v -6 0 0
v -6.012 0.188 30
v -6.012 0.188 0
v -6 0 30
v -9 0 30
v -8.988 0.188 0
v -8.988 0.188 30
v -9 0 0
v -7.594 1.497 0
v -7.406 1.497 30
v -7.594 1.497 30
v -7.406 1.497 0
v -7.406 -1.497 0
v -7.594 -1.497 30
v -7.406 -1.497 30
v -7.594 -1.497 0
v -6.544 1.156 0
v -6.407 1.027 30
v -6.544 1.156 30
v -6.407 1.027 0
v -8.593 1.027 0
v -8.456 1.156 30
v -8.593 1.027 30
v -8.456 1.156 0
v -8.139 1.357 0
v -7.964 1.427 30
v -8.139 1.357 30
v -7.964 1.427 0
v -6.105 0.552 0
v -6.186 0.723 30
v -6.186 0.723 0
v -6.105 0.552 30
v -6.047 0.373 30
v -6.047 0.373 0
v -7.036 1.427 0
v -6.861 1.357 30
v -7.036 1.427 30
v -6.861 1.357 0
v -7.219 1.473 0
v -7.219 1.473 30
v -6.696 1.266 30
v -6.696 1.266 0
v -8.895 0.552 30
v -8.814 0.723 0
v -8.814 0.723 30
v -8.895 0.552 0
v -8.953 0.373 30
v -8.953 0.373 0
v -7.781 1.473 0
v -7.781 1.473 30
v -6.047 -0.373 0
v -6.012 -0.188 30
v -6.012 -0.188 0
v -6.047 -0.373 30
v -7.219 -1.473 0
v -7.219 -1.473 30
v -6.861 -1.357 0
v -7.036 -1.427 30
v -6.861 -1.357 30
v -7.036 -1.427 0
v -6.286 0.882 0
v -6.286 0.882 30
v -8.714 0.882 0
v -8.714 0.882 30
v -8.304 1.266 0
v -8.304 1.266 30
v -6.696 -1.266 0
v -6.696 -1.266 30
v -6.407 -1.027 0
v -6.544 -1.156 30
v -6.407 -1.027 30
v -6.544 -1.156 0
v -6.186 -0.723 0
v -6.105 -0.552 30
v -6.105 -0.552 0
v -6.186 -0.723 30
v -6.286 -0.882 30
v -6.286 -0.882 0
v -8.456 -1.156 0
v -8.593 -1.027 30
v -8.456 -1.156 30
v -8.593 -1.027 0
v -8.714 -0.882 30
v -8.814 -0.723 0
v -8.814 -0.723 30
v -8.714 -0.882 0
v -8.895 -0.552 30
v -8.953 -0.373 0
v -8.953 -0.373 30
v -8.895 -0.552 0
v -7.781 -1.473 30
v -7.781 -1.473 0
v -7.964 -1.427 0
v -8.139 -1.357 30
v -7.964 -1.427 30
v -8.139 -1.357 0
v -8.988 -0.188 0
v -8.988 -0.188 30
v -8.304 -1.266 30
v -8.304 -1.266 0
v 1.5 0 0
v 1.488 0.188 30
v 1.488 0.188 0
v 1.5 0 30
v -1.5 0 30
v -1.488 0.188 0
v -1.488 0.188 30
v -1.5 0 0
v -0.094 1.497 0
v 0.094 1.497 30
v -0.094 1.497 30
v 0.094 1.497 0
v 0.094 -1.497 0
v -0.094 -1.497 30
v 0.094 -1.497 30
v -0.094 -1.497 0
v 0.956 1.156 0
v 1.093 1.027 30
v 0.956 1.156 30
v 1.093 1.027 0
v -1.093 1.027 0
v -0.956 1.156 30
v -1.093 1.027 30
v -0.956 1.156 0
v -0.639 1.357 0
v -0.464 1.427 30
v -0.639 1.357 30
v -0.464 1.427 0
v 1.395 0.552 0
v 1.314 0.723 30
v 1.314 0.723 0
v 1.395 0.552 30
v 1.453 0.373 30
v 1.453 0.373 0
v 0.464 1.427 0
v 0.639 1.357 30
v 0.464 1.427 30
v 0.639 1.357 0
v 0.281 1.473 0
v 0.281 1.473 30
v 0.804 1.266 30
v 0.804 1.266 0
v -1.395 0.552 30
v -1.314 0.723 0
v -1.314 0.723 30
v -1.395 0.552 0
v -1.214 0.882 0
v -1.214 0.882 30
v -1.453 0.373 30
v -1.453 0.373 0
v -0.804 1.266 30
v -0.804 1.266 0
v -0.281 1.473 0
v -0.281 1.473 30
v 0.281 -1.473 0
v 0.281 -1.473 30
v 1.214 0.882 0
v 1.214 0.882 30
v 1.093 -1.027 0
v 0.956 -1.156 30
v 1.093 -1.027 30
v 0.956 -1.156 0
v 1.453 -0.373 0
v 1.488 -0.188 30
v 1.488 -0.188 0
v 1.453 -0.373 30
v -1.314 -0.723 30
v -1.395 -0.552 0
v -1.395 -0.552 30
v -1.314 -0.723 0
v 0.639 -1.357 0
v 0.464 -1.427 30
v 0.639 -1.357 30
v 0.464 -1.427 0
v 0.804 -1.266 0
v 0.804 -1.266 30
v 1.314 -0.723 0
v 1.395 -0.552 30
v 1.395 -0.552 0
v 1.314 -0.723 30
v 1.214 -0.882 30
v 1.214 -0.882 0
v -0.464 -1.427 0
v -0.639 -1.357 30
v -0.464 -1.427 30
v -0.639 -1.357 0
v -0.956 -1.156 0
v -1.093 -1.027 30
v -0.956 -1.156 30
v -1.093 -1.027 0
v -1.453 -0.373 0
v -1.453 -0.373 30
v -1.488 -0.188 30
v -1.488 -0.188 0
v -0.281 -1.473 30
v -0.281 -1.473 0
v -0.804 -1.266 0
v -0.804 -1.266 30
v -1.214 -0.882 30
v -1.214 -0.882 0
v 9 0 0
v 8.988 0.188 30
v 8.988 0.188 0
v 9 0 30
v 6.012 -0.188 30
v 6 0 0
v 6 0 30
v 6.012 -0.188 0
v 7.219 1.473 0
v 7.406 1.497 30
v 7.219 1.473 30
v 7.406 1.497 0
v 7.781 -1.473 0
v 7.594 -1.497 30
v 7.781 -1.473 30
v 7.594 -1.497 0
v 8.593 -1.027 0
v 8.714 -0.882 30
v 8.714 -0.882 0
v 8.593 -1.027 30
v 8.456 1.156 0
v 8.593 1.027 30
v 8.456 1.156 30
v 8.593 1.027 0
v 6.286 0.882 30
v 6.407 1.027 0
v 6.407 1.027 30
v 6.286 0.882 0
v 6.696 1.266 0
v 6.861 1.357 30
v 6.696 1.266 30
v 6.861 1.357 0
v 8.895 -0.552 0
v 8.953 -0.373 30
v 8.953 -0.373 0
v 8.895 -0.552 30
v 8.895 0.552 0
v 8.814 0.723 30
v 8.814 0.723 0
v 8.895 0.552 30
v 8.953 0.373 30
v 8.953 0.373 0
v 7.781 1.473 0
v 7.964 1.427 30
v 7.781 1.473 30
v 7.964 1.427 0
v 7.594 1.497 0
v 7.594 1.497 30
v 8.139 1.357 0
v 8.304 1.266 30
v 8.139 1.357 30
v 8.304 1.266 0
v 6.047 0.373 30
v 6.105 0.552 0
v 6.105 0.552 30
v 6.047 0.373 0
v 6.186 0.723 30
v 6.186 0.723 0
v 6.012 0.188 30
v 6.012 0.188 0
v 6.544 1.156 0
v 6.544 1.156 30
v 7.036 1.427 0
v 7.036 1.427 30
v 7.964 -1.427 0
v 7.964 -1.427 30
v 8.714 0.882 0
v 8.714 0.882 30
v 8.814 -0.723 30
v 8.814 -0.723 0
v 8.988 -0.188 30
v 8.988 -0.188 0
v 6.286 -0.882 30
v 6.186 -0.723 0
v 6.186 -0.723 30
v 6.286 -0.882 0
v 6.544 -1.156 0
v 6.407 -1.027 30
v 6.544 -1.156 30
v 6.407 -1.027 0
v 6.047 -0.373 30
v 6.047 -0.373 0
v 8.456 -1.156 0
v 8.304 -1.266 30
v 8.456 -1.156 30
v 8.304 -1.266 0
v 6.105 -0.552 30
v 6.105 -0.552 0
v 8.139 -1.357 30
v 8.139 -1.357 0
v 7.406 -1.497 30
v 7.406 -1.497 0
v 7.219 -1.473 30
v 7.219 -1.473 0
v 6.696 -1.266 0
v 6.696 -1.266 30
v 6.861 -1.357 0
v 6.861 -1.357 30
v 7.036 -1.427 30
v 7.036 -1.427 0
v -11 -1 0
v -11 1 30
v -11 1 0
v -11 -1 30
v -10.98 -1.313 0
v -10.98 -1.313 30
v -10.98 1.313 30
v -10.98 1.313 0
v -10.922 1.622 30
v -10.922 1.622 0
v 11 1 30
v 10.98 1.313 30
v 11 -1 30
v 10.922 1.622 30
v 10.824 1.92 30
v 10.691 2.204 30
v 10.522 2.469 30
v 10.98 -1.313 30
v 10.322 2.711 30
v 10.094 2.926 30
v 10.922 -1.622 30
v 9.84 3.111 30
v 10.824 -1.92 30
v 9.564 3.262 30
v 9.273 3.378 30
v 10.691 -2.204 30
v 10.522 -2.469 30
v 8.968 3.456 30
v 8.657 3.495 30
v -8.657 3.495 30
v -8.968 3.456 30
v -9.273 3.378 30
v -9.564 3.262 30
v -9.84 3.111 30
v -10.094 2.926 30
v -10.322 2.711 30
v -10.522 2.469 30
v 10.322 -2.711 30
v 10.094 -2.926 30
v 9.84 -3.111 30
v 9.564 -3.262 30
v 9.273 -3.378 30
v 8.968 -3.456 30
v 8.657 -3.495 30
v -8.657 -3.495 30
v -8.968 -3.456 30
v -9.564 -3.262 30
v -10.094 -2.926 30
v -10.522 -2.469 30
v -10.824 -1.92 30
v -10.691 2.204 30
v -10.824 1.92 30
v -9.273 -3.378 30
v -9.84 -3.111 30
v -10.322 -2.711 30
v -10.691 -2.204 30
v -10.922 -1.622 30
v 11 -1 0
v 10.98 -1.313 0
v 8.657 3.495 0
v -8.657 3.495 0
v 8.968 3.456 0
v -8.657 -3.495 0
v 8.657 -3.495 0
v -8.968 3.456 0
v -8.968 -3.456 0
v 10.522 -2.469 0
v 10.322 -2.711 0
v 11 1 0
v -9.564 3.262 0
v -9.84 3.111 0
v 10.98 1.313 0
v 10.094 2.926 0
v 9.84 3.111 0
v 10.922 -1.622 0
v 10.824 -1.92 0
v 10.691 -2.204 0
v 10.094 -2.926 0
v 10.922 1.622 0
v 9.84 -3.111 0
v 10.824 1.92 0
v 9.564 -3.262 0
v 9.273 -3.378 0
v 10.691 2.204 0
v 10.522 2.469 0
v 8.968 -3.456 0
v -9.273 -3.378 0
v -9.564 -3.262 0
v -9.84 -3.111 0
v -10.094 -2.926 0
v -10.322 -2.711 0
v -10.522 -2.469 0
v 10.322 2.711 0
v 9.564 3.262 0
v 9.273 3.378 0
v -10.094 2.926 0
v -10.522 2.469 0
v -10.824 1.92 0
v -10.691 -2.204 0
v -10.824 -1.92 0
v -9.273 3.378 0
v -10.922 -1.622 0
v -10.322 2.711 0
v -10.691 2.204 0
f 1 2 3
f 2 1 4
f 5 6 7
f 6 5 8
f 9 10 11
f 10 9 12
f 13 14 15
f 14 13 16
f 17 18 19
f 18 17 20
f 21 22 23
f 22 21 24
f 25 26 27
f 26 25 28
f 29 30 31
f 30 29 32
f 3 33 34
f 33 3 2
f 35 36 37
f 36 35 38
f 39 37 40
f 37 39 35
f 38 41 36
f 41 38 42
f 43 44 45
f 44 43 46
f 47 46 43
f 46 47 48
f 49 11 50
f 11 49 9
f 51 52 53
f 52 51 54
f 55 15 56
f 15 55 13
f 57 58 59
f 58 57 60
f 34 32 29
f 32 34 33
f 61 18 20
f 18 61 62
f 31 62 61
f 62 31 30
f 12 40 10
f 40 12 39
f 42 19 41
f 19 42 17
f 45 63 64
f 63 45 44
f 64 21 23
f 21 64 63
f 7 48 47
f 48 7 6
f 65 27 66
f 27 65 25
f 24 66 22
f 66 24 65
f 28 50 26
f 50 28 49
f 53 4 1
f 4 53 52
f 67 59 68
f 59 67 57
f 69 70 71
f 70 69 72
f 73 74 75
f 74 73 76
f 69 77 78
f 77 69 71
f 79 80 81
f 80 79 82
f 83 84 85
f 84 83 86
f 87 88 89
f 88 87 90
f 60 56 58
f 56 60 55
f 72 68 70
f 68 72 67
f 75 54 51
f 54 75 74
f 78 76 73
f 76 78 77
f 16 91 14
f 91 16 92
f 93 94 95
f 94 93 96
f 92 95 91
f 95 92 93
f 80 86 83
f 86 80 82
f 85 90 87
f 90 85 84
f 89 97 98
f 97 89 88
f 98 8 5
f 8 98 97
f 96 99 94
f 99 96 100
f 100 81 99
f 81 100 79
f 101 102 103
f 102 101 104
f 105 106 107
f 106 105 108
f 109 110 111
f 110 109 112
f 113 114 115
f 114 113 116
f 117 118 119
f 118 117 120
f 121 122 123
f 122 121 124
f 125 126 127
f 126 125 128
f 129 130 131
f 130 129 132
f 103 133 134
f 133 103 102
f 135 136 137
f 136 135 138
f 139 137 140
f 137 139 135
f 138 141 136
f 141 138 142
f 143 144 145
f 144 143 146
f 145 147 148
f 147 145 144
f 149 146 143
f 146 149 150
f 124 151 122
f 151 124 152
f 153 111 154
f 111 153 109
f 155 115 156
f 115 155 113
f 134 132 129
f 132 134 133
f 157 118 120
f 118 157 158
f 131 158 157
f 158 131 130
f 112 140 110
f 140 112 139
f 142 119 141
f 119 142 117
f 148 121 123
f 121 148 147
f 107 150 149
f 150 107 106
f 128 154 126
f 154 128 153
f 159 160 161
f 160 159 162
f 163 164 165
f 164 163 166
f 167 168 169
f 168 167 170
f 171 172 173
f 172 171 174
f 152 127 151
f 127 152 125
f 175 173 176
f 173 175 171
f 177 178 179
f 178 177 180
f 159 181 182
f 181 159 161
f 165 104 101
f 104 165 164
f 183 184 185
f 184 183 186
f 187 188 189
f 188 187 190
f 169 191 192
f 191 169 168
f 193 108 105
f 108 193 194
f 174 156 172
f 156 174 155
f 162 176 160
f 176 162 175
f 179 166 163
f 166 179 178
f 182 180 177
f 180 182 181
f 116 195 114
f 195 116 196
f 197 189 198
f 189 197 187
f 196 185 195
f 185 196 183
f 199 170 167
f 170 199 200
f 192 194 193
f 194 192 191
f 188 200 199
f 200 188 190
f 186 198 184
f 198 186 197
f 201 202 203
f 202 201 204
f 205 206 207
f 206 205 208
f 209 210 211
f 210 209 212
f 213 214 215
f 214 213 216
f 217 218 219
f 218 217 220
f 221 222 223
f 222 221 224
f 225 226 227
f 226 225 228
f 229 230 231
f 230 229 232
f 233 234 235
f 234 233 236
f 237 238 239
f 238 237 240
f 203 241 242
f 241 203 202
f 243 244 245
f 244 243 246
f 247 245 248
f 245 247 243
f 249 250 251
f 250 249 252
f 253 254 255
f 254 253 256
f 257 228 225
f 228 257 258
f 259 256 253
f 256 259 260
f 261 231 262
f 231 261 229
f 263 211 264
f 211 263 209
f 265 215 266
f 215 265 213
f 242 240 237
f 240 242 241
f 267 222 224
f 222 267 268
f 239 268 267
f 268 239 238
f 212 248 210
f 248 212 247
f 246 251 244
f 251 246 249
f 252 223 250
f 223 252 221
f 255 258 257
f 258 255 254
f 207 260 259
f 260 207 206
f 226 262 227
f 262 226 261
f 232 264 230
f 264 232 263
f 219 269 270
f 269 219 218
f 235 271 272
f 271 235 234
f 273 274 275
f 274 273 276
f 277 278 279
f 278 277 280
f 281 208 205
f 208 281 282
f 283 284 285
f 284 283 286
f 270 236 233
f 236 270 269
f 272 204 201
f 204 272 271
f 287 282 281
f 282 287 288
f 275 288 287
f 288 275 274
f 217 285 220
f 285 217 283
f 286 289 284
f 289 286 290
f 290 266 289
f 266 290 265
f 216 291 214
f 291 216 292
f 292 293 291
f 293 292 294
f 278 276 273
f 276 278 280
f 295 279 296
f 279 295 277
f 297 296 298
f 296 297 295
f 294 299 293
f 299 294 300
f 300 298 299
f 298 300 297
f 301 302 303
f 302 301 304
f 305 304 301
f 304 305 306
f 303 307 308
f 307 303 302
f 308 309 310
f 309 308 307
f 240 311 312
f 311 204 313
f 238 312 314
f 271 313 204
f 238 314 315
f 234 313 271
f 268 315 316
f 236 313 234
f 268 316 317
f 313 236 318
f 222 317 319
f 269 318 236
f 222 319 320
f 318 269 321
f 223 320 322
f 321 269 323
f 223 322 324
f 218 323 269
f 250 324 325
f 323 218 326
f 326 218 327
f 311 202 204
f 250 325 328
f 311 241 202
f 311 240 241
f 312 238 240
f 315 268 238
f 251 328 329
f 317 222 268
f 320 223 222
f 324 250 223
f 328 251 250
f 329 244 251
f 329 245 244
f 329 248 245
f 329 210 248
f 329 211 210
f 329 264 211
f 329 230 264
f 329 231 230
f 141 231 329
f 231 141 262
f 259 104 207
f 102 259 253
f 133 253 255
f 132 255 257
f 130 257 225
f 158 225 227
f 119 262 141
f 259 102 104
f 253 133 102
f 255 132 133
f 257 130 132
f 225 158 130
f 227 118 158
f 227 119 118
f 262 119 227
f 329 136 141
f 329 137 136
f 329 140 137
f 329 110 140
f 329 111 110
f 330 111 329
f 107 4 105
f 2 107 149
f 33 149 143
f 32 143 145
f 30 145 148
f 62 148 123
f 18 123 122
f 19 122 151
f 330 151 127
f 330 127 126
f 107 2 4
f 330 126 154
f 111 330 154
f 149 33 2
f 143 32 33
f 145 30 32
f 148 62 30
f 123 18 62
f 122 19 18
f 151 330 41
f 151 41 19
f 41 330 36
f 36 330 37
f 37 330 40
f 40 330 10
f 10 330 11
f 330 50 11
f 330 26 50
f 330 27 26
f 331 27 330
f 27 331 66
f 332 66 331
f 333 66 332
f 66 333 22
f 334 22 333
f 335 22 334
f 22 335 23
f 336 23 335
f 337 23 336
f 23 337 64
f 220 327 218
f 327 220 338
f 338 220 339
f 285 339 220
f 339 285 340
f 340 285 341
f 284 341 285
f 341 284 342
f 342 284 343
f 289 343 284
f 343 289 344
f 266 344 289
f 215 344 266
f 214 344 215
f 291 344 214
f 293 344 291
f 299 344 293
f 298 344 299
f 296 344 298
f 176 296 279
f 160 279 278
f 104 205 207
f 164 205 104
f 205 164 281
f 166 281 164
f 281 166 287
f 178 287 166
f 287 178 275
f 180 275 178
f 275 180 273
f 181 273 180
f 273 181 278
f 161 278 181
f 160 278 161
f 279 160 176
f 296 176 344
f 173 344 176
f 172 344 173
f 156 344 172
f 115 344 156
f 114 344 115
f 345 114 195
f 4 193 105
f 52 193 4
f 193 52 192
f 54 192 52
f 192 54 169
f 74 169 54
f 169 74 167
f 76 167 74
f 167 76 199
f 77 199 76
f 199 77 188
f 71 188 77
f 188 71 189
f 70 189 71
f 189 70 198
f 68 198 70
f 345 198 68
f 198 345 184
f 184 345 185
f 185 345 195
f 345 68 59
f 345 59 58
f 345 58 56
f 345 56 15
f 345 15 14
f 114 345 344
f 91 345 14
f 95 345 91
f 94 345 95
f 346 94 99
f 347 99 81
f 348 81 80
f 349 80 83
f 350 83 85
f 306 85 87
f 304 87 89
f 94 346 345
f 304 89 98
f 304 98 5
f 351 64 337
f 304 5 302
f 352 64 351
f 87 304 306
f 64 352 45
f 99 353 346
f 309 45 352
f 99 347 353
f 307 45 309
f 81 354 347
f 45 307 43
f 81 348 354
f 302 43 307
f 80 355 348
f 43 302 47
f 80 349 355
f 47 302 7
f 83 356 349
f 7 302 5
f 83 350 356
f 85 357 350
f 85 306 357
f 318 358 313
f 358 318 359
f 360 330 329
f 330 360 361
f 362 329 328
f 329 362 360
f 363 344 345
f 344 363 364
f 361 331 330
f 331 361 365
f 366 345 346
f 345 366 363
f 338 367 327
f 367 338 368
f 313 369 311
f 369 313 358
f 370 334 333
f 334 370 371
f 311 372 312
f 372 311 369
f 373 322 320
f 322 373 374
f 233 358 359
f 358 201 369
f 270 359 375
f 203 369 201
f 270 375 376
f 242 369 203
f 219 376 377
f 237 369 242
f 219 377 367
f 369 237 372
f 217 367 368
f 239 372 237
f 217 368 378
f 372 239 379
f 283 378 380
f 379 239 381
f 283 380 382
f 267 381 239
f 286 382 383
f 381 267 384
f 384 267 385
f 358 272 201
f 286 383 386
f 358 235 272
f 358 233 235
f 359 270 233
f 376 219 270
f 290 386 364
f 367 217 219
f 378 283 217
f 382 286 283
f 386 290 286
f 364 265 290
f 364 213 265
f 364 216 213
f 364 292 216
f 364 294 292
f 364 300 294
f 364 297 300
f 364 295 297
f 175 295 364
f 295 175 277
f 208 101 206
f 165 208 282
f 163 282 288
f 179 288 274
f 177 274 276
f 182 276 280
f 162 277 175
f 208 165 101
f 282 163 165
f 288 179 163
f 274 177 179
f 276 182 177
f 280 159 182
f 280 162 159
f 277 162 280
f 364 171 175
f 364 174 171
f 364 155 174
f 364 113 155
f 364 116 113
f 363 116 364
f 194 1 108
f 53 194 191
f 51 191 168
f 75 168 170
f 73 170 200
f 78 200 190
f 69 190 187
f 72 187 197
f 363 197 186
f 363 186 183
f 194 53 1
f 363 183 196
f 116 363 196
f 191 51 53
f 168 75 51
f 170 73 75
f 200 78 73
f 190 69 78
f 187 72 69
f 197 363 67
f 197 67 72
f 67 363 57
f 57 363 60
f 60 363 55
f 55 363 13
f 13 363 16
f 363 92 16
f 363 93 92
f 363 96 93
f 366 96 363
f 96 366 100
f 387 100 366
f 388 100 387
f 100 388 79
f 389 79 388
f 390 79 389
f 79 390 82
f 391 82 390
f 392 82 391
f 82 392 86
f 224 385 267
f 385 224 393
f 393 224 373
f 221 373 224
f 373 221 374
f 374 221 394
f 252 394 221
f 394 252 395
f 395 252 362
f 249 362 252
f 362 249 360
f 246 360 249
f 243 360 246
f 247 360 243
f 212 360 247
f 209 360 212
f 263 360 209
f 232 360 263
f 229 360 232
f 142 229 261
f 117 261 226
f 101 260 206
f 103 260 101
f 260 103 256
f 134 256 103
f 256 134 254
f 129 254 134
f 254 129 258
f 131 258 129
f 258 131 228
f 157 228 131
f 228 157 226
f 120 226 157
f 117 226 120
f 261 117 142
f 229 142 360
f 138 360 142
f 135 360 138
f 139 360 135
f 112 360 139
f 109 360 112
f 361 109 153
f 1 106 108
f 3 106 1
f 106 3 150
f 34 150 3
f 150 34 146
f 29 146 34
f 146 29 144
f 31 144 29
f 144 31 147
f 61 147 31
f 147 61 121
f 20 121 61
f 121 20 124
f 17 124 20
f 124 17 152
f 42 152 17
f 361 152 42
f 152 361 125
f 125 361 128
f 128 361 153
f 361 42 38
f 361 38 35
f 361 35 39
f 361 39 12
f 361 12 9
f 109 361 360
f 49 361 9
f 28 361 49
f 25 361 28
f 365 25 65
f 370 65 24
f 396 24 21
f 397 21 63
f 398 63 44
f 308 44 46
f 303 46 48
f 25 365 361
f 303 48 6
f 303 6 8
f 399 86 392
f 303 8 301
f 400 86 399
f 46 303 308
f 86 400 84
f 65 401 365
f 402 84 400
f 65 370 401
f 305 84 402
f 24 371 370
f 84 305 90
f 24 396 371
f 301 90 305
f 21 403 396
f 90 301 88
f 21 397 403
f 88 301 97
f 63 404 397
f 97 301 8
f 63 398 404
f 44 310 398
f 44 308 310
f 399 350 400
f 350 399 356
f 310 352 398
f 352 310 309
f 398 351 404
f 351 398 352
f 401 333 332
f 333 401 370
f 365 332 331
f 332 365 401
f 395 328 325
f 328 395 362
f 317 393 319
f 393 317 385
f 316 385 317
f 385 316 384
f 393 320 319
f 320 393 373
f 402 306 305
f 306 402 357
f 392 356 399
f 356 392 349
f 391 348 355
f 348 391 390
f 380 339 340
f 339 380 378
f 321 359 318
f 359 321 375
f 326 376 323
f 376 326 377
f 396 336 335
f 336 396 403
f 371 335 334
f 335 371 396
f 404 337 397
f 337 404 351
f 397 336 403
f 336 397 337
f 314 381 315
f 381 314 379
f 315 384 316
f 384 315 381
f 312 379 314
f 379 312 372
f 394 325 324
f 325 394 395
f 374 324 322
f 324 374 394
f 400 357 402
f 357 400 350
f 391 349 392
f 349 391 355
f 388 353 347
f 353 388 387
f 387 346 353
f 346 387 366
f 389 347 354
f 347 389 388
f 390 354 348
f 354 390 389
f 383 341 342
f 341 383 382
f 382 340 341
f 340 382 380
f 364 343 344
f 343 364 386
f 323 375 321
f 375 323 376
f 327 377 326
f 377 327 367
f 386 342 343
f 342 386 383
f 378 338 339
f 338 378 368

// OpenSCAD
$fn = 50;


difference() {
	union() {
		translate(v = [0, 0, 0]) {
			rotate(a = [0, 0, 0]) {
				hull() {
					translate(v = [-8.5000000000, 1.0000000000, 0]) {
						rotate(a = [0, 0, 0]) {
							translate(v = [0, 0, 0]) {
								rotate(a = [0, 0, 0]) {
									cylinder(h = 30, r = 2.5000000000);
								}
							}
						}
					}
					translate(v = [8.5000000000, 1.0000000000, 0]) {
						rotate(a = [0, 0, 0]) {
							translate(v = [0, 0, 0]) {
								rotate(a = [0, 0, 0]) {
									cylinder(h = 30, r = 2.5000000000);
								}
							}
						}
					}
					translate(v = [-8.5000000000, -1.0000000000, 0]) {
						rotate(a = [0, 0, 0]) {
							translate(v = [0, 0, 0]) {
								rotate(a = [0, 0, 0]) {
									cylinder(h = 30, r = 2.5000000000);
								}
							}
						}
					}
					translate(v = [8.5000000000, -1.0000000000, 0]) {
						rotate(a = [0, 0, 0]) {
							translate(v = [0, 0, 0]) {
								rotate(a = [0, 0, 0]) {
									cylinder(h = 30, r = 2.5000000000);
								}
							}
						}
					}
				}
			}
		}
	}
	union() {
		translate(v = [-7.5000000000, 0.0000000000, 0]) {
			rotate(a = [0, 0, 0]) {
				translate(v = [0, 0, -50]) {
					rotate(a = [0, 0, 0]) {
						cylinder(h = 100, r = 1.5000000000);
					}
				}
			}
		}
		translate(v = [0.0000000000, 0.0000000000, 0]) {
			rotate(a = [0, 0, 0]) {
				translate(v = [0, 0, -50]) {
					rotate(a = [0, 0, 0]) {
						cylinder(h = 100, r = 1.5000000000);
					}
				}
			}
		}
		translate(v = [7.5000000000, 0.0000000000, 0]) {
			rotate(a = [0, 0, 0]) {
				translate(v = [0, 0, -50]) {
					rotate(a = [0, 0, 0]) {
						cylinder(h = 100, r = 1.5000000000);
					}
				}
			}
		}
	}
}
